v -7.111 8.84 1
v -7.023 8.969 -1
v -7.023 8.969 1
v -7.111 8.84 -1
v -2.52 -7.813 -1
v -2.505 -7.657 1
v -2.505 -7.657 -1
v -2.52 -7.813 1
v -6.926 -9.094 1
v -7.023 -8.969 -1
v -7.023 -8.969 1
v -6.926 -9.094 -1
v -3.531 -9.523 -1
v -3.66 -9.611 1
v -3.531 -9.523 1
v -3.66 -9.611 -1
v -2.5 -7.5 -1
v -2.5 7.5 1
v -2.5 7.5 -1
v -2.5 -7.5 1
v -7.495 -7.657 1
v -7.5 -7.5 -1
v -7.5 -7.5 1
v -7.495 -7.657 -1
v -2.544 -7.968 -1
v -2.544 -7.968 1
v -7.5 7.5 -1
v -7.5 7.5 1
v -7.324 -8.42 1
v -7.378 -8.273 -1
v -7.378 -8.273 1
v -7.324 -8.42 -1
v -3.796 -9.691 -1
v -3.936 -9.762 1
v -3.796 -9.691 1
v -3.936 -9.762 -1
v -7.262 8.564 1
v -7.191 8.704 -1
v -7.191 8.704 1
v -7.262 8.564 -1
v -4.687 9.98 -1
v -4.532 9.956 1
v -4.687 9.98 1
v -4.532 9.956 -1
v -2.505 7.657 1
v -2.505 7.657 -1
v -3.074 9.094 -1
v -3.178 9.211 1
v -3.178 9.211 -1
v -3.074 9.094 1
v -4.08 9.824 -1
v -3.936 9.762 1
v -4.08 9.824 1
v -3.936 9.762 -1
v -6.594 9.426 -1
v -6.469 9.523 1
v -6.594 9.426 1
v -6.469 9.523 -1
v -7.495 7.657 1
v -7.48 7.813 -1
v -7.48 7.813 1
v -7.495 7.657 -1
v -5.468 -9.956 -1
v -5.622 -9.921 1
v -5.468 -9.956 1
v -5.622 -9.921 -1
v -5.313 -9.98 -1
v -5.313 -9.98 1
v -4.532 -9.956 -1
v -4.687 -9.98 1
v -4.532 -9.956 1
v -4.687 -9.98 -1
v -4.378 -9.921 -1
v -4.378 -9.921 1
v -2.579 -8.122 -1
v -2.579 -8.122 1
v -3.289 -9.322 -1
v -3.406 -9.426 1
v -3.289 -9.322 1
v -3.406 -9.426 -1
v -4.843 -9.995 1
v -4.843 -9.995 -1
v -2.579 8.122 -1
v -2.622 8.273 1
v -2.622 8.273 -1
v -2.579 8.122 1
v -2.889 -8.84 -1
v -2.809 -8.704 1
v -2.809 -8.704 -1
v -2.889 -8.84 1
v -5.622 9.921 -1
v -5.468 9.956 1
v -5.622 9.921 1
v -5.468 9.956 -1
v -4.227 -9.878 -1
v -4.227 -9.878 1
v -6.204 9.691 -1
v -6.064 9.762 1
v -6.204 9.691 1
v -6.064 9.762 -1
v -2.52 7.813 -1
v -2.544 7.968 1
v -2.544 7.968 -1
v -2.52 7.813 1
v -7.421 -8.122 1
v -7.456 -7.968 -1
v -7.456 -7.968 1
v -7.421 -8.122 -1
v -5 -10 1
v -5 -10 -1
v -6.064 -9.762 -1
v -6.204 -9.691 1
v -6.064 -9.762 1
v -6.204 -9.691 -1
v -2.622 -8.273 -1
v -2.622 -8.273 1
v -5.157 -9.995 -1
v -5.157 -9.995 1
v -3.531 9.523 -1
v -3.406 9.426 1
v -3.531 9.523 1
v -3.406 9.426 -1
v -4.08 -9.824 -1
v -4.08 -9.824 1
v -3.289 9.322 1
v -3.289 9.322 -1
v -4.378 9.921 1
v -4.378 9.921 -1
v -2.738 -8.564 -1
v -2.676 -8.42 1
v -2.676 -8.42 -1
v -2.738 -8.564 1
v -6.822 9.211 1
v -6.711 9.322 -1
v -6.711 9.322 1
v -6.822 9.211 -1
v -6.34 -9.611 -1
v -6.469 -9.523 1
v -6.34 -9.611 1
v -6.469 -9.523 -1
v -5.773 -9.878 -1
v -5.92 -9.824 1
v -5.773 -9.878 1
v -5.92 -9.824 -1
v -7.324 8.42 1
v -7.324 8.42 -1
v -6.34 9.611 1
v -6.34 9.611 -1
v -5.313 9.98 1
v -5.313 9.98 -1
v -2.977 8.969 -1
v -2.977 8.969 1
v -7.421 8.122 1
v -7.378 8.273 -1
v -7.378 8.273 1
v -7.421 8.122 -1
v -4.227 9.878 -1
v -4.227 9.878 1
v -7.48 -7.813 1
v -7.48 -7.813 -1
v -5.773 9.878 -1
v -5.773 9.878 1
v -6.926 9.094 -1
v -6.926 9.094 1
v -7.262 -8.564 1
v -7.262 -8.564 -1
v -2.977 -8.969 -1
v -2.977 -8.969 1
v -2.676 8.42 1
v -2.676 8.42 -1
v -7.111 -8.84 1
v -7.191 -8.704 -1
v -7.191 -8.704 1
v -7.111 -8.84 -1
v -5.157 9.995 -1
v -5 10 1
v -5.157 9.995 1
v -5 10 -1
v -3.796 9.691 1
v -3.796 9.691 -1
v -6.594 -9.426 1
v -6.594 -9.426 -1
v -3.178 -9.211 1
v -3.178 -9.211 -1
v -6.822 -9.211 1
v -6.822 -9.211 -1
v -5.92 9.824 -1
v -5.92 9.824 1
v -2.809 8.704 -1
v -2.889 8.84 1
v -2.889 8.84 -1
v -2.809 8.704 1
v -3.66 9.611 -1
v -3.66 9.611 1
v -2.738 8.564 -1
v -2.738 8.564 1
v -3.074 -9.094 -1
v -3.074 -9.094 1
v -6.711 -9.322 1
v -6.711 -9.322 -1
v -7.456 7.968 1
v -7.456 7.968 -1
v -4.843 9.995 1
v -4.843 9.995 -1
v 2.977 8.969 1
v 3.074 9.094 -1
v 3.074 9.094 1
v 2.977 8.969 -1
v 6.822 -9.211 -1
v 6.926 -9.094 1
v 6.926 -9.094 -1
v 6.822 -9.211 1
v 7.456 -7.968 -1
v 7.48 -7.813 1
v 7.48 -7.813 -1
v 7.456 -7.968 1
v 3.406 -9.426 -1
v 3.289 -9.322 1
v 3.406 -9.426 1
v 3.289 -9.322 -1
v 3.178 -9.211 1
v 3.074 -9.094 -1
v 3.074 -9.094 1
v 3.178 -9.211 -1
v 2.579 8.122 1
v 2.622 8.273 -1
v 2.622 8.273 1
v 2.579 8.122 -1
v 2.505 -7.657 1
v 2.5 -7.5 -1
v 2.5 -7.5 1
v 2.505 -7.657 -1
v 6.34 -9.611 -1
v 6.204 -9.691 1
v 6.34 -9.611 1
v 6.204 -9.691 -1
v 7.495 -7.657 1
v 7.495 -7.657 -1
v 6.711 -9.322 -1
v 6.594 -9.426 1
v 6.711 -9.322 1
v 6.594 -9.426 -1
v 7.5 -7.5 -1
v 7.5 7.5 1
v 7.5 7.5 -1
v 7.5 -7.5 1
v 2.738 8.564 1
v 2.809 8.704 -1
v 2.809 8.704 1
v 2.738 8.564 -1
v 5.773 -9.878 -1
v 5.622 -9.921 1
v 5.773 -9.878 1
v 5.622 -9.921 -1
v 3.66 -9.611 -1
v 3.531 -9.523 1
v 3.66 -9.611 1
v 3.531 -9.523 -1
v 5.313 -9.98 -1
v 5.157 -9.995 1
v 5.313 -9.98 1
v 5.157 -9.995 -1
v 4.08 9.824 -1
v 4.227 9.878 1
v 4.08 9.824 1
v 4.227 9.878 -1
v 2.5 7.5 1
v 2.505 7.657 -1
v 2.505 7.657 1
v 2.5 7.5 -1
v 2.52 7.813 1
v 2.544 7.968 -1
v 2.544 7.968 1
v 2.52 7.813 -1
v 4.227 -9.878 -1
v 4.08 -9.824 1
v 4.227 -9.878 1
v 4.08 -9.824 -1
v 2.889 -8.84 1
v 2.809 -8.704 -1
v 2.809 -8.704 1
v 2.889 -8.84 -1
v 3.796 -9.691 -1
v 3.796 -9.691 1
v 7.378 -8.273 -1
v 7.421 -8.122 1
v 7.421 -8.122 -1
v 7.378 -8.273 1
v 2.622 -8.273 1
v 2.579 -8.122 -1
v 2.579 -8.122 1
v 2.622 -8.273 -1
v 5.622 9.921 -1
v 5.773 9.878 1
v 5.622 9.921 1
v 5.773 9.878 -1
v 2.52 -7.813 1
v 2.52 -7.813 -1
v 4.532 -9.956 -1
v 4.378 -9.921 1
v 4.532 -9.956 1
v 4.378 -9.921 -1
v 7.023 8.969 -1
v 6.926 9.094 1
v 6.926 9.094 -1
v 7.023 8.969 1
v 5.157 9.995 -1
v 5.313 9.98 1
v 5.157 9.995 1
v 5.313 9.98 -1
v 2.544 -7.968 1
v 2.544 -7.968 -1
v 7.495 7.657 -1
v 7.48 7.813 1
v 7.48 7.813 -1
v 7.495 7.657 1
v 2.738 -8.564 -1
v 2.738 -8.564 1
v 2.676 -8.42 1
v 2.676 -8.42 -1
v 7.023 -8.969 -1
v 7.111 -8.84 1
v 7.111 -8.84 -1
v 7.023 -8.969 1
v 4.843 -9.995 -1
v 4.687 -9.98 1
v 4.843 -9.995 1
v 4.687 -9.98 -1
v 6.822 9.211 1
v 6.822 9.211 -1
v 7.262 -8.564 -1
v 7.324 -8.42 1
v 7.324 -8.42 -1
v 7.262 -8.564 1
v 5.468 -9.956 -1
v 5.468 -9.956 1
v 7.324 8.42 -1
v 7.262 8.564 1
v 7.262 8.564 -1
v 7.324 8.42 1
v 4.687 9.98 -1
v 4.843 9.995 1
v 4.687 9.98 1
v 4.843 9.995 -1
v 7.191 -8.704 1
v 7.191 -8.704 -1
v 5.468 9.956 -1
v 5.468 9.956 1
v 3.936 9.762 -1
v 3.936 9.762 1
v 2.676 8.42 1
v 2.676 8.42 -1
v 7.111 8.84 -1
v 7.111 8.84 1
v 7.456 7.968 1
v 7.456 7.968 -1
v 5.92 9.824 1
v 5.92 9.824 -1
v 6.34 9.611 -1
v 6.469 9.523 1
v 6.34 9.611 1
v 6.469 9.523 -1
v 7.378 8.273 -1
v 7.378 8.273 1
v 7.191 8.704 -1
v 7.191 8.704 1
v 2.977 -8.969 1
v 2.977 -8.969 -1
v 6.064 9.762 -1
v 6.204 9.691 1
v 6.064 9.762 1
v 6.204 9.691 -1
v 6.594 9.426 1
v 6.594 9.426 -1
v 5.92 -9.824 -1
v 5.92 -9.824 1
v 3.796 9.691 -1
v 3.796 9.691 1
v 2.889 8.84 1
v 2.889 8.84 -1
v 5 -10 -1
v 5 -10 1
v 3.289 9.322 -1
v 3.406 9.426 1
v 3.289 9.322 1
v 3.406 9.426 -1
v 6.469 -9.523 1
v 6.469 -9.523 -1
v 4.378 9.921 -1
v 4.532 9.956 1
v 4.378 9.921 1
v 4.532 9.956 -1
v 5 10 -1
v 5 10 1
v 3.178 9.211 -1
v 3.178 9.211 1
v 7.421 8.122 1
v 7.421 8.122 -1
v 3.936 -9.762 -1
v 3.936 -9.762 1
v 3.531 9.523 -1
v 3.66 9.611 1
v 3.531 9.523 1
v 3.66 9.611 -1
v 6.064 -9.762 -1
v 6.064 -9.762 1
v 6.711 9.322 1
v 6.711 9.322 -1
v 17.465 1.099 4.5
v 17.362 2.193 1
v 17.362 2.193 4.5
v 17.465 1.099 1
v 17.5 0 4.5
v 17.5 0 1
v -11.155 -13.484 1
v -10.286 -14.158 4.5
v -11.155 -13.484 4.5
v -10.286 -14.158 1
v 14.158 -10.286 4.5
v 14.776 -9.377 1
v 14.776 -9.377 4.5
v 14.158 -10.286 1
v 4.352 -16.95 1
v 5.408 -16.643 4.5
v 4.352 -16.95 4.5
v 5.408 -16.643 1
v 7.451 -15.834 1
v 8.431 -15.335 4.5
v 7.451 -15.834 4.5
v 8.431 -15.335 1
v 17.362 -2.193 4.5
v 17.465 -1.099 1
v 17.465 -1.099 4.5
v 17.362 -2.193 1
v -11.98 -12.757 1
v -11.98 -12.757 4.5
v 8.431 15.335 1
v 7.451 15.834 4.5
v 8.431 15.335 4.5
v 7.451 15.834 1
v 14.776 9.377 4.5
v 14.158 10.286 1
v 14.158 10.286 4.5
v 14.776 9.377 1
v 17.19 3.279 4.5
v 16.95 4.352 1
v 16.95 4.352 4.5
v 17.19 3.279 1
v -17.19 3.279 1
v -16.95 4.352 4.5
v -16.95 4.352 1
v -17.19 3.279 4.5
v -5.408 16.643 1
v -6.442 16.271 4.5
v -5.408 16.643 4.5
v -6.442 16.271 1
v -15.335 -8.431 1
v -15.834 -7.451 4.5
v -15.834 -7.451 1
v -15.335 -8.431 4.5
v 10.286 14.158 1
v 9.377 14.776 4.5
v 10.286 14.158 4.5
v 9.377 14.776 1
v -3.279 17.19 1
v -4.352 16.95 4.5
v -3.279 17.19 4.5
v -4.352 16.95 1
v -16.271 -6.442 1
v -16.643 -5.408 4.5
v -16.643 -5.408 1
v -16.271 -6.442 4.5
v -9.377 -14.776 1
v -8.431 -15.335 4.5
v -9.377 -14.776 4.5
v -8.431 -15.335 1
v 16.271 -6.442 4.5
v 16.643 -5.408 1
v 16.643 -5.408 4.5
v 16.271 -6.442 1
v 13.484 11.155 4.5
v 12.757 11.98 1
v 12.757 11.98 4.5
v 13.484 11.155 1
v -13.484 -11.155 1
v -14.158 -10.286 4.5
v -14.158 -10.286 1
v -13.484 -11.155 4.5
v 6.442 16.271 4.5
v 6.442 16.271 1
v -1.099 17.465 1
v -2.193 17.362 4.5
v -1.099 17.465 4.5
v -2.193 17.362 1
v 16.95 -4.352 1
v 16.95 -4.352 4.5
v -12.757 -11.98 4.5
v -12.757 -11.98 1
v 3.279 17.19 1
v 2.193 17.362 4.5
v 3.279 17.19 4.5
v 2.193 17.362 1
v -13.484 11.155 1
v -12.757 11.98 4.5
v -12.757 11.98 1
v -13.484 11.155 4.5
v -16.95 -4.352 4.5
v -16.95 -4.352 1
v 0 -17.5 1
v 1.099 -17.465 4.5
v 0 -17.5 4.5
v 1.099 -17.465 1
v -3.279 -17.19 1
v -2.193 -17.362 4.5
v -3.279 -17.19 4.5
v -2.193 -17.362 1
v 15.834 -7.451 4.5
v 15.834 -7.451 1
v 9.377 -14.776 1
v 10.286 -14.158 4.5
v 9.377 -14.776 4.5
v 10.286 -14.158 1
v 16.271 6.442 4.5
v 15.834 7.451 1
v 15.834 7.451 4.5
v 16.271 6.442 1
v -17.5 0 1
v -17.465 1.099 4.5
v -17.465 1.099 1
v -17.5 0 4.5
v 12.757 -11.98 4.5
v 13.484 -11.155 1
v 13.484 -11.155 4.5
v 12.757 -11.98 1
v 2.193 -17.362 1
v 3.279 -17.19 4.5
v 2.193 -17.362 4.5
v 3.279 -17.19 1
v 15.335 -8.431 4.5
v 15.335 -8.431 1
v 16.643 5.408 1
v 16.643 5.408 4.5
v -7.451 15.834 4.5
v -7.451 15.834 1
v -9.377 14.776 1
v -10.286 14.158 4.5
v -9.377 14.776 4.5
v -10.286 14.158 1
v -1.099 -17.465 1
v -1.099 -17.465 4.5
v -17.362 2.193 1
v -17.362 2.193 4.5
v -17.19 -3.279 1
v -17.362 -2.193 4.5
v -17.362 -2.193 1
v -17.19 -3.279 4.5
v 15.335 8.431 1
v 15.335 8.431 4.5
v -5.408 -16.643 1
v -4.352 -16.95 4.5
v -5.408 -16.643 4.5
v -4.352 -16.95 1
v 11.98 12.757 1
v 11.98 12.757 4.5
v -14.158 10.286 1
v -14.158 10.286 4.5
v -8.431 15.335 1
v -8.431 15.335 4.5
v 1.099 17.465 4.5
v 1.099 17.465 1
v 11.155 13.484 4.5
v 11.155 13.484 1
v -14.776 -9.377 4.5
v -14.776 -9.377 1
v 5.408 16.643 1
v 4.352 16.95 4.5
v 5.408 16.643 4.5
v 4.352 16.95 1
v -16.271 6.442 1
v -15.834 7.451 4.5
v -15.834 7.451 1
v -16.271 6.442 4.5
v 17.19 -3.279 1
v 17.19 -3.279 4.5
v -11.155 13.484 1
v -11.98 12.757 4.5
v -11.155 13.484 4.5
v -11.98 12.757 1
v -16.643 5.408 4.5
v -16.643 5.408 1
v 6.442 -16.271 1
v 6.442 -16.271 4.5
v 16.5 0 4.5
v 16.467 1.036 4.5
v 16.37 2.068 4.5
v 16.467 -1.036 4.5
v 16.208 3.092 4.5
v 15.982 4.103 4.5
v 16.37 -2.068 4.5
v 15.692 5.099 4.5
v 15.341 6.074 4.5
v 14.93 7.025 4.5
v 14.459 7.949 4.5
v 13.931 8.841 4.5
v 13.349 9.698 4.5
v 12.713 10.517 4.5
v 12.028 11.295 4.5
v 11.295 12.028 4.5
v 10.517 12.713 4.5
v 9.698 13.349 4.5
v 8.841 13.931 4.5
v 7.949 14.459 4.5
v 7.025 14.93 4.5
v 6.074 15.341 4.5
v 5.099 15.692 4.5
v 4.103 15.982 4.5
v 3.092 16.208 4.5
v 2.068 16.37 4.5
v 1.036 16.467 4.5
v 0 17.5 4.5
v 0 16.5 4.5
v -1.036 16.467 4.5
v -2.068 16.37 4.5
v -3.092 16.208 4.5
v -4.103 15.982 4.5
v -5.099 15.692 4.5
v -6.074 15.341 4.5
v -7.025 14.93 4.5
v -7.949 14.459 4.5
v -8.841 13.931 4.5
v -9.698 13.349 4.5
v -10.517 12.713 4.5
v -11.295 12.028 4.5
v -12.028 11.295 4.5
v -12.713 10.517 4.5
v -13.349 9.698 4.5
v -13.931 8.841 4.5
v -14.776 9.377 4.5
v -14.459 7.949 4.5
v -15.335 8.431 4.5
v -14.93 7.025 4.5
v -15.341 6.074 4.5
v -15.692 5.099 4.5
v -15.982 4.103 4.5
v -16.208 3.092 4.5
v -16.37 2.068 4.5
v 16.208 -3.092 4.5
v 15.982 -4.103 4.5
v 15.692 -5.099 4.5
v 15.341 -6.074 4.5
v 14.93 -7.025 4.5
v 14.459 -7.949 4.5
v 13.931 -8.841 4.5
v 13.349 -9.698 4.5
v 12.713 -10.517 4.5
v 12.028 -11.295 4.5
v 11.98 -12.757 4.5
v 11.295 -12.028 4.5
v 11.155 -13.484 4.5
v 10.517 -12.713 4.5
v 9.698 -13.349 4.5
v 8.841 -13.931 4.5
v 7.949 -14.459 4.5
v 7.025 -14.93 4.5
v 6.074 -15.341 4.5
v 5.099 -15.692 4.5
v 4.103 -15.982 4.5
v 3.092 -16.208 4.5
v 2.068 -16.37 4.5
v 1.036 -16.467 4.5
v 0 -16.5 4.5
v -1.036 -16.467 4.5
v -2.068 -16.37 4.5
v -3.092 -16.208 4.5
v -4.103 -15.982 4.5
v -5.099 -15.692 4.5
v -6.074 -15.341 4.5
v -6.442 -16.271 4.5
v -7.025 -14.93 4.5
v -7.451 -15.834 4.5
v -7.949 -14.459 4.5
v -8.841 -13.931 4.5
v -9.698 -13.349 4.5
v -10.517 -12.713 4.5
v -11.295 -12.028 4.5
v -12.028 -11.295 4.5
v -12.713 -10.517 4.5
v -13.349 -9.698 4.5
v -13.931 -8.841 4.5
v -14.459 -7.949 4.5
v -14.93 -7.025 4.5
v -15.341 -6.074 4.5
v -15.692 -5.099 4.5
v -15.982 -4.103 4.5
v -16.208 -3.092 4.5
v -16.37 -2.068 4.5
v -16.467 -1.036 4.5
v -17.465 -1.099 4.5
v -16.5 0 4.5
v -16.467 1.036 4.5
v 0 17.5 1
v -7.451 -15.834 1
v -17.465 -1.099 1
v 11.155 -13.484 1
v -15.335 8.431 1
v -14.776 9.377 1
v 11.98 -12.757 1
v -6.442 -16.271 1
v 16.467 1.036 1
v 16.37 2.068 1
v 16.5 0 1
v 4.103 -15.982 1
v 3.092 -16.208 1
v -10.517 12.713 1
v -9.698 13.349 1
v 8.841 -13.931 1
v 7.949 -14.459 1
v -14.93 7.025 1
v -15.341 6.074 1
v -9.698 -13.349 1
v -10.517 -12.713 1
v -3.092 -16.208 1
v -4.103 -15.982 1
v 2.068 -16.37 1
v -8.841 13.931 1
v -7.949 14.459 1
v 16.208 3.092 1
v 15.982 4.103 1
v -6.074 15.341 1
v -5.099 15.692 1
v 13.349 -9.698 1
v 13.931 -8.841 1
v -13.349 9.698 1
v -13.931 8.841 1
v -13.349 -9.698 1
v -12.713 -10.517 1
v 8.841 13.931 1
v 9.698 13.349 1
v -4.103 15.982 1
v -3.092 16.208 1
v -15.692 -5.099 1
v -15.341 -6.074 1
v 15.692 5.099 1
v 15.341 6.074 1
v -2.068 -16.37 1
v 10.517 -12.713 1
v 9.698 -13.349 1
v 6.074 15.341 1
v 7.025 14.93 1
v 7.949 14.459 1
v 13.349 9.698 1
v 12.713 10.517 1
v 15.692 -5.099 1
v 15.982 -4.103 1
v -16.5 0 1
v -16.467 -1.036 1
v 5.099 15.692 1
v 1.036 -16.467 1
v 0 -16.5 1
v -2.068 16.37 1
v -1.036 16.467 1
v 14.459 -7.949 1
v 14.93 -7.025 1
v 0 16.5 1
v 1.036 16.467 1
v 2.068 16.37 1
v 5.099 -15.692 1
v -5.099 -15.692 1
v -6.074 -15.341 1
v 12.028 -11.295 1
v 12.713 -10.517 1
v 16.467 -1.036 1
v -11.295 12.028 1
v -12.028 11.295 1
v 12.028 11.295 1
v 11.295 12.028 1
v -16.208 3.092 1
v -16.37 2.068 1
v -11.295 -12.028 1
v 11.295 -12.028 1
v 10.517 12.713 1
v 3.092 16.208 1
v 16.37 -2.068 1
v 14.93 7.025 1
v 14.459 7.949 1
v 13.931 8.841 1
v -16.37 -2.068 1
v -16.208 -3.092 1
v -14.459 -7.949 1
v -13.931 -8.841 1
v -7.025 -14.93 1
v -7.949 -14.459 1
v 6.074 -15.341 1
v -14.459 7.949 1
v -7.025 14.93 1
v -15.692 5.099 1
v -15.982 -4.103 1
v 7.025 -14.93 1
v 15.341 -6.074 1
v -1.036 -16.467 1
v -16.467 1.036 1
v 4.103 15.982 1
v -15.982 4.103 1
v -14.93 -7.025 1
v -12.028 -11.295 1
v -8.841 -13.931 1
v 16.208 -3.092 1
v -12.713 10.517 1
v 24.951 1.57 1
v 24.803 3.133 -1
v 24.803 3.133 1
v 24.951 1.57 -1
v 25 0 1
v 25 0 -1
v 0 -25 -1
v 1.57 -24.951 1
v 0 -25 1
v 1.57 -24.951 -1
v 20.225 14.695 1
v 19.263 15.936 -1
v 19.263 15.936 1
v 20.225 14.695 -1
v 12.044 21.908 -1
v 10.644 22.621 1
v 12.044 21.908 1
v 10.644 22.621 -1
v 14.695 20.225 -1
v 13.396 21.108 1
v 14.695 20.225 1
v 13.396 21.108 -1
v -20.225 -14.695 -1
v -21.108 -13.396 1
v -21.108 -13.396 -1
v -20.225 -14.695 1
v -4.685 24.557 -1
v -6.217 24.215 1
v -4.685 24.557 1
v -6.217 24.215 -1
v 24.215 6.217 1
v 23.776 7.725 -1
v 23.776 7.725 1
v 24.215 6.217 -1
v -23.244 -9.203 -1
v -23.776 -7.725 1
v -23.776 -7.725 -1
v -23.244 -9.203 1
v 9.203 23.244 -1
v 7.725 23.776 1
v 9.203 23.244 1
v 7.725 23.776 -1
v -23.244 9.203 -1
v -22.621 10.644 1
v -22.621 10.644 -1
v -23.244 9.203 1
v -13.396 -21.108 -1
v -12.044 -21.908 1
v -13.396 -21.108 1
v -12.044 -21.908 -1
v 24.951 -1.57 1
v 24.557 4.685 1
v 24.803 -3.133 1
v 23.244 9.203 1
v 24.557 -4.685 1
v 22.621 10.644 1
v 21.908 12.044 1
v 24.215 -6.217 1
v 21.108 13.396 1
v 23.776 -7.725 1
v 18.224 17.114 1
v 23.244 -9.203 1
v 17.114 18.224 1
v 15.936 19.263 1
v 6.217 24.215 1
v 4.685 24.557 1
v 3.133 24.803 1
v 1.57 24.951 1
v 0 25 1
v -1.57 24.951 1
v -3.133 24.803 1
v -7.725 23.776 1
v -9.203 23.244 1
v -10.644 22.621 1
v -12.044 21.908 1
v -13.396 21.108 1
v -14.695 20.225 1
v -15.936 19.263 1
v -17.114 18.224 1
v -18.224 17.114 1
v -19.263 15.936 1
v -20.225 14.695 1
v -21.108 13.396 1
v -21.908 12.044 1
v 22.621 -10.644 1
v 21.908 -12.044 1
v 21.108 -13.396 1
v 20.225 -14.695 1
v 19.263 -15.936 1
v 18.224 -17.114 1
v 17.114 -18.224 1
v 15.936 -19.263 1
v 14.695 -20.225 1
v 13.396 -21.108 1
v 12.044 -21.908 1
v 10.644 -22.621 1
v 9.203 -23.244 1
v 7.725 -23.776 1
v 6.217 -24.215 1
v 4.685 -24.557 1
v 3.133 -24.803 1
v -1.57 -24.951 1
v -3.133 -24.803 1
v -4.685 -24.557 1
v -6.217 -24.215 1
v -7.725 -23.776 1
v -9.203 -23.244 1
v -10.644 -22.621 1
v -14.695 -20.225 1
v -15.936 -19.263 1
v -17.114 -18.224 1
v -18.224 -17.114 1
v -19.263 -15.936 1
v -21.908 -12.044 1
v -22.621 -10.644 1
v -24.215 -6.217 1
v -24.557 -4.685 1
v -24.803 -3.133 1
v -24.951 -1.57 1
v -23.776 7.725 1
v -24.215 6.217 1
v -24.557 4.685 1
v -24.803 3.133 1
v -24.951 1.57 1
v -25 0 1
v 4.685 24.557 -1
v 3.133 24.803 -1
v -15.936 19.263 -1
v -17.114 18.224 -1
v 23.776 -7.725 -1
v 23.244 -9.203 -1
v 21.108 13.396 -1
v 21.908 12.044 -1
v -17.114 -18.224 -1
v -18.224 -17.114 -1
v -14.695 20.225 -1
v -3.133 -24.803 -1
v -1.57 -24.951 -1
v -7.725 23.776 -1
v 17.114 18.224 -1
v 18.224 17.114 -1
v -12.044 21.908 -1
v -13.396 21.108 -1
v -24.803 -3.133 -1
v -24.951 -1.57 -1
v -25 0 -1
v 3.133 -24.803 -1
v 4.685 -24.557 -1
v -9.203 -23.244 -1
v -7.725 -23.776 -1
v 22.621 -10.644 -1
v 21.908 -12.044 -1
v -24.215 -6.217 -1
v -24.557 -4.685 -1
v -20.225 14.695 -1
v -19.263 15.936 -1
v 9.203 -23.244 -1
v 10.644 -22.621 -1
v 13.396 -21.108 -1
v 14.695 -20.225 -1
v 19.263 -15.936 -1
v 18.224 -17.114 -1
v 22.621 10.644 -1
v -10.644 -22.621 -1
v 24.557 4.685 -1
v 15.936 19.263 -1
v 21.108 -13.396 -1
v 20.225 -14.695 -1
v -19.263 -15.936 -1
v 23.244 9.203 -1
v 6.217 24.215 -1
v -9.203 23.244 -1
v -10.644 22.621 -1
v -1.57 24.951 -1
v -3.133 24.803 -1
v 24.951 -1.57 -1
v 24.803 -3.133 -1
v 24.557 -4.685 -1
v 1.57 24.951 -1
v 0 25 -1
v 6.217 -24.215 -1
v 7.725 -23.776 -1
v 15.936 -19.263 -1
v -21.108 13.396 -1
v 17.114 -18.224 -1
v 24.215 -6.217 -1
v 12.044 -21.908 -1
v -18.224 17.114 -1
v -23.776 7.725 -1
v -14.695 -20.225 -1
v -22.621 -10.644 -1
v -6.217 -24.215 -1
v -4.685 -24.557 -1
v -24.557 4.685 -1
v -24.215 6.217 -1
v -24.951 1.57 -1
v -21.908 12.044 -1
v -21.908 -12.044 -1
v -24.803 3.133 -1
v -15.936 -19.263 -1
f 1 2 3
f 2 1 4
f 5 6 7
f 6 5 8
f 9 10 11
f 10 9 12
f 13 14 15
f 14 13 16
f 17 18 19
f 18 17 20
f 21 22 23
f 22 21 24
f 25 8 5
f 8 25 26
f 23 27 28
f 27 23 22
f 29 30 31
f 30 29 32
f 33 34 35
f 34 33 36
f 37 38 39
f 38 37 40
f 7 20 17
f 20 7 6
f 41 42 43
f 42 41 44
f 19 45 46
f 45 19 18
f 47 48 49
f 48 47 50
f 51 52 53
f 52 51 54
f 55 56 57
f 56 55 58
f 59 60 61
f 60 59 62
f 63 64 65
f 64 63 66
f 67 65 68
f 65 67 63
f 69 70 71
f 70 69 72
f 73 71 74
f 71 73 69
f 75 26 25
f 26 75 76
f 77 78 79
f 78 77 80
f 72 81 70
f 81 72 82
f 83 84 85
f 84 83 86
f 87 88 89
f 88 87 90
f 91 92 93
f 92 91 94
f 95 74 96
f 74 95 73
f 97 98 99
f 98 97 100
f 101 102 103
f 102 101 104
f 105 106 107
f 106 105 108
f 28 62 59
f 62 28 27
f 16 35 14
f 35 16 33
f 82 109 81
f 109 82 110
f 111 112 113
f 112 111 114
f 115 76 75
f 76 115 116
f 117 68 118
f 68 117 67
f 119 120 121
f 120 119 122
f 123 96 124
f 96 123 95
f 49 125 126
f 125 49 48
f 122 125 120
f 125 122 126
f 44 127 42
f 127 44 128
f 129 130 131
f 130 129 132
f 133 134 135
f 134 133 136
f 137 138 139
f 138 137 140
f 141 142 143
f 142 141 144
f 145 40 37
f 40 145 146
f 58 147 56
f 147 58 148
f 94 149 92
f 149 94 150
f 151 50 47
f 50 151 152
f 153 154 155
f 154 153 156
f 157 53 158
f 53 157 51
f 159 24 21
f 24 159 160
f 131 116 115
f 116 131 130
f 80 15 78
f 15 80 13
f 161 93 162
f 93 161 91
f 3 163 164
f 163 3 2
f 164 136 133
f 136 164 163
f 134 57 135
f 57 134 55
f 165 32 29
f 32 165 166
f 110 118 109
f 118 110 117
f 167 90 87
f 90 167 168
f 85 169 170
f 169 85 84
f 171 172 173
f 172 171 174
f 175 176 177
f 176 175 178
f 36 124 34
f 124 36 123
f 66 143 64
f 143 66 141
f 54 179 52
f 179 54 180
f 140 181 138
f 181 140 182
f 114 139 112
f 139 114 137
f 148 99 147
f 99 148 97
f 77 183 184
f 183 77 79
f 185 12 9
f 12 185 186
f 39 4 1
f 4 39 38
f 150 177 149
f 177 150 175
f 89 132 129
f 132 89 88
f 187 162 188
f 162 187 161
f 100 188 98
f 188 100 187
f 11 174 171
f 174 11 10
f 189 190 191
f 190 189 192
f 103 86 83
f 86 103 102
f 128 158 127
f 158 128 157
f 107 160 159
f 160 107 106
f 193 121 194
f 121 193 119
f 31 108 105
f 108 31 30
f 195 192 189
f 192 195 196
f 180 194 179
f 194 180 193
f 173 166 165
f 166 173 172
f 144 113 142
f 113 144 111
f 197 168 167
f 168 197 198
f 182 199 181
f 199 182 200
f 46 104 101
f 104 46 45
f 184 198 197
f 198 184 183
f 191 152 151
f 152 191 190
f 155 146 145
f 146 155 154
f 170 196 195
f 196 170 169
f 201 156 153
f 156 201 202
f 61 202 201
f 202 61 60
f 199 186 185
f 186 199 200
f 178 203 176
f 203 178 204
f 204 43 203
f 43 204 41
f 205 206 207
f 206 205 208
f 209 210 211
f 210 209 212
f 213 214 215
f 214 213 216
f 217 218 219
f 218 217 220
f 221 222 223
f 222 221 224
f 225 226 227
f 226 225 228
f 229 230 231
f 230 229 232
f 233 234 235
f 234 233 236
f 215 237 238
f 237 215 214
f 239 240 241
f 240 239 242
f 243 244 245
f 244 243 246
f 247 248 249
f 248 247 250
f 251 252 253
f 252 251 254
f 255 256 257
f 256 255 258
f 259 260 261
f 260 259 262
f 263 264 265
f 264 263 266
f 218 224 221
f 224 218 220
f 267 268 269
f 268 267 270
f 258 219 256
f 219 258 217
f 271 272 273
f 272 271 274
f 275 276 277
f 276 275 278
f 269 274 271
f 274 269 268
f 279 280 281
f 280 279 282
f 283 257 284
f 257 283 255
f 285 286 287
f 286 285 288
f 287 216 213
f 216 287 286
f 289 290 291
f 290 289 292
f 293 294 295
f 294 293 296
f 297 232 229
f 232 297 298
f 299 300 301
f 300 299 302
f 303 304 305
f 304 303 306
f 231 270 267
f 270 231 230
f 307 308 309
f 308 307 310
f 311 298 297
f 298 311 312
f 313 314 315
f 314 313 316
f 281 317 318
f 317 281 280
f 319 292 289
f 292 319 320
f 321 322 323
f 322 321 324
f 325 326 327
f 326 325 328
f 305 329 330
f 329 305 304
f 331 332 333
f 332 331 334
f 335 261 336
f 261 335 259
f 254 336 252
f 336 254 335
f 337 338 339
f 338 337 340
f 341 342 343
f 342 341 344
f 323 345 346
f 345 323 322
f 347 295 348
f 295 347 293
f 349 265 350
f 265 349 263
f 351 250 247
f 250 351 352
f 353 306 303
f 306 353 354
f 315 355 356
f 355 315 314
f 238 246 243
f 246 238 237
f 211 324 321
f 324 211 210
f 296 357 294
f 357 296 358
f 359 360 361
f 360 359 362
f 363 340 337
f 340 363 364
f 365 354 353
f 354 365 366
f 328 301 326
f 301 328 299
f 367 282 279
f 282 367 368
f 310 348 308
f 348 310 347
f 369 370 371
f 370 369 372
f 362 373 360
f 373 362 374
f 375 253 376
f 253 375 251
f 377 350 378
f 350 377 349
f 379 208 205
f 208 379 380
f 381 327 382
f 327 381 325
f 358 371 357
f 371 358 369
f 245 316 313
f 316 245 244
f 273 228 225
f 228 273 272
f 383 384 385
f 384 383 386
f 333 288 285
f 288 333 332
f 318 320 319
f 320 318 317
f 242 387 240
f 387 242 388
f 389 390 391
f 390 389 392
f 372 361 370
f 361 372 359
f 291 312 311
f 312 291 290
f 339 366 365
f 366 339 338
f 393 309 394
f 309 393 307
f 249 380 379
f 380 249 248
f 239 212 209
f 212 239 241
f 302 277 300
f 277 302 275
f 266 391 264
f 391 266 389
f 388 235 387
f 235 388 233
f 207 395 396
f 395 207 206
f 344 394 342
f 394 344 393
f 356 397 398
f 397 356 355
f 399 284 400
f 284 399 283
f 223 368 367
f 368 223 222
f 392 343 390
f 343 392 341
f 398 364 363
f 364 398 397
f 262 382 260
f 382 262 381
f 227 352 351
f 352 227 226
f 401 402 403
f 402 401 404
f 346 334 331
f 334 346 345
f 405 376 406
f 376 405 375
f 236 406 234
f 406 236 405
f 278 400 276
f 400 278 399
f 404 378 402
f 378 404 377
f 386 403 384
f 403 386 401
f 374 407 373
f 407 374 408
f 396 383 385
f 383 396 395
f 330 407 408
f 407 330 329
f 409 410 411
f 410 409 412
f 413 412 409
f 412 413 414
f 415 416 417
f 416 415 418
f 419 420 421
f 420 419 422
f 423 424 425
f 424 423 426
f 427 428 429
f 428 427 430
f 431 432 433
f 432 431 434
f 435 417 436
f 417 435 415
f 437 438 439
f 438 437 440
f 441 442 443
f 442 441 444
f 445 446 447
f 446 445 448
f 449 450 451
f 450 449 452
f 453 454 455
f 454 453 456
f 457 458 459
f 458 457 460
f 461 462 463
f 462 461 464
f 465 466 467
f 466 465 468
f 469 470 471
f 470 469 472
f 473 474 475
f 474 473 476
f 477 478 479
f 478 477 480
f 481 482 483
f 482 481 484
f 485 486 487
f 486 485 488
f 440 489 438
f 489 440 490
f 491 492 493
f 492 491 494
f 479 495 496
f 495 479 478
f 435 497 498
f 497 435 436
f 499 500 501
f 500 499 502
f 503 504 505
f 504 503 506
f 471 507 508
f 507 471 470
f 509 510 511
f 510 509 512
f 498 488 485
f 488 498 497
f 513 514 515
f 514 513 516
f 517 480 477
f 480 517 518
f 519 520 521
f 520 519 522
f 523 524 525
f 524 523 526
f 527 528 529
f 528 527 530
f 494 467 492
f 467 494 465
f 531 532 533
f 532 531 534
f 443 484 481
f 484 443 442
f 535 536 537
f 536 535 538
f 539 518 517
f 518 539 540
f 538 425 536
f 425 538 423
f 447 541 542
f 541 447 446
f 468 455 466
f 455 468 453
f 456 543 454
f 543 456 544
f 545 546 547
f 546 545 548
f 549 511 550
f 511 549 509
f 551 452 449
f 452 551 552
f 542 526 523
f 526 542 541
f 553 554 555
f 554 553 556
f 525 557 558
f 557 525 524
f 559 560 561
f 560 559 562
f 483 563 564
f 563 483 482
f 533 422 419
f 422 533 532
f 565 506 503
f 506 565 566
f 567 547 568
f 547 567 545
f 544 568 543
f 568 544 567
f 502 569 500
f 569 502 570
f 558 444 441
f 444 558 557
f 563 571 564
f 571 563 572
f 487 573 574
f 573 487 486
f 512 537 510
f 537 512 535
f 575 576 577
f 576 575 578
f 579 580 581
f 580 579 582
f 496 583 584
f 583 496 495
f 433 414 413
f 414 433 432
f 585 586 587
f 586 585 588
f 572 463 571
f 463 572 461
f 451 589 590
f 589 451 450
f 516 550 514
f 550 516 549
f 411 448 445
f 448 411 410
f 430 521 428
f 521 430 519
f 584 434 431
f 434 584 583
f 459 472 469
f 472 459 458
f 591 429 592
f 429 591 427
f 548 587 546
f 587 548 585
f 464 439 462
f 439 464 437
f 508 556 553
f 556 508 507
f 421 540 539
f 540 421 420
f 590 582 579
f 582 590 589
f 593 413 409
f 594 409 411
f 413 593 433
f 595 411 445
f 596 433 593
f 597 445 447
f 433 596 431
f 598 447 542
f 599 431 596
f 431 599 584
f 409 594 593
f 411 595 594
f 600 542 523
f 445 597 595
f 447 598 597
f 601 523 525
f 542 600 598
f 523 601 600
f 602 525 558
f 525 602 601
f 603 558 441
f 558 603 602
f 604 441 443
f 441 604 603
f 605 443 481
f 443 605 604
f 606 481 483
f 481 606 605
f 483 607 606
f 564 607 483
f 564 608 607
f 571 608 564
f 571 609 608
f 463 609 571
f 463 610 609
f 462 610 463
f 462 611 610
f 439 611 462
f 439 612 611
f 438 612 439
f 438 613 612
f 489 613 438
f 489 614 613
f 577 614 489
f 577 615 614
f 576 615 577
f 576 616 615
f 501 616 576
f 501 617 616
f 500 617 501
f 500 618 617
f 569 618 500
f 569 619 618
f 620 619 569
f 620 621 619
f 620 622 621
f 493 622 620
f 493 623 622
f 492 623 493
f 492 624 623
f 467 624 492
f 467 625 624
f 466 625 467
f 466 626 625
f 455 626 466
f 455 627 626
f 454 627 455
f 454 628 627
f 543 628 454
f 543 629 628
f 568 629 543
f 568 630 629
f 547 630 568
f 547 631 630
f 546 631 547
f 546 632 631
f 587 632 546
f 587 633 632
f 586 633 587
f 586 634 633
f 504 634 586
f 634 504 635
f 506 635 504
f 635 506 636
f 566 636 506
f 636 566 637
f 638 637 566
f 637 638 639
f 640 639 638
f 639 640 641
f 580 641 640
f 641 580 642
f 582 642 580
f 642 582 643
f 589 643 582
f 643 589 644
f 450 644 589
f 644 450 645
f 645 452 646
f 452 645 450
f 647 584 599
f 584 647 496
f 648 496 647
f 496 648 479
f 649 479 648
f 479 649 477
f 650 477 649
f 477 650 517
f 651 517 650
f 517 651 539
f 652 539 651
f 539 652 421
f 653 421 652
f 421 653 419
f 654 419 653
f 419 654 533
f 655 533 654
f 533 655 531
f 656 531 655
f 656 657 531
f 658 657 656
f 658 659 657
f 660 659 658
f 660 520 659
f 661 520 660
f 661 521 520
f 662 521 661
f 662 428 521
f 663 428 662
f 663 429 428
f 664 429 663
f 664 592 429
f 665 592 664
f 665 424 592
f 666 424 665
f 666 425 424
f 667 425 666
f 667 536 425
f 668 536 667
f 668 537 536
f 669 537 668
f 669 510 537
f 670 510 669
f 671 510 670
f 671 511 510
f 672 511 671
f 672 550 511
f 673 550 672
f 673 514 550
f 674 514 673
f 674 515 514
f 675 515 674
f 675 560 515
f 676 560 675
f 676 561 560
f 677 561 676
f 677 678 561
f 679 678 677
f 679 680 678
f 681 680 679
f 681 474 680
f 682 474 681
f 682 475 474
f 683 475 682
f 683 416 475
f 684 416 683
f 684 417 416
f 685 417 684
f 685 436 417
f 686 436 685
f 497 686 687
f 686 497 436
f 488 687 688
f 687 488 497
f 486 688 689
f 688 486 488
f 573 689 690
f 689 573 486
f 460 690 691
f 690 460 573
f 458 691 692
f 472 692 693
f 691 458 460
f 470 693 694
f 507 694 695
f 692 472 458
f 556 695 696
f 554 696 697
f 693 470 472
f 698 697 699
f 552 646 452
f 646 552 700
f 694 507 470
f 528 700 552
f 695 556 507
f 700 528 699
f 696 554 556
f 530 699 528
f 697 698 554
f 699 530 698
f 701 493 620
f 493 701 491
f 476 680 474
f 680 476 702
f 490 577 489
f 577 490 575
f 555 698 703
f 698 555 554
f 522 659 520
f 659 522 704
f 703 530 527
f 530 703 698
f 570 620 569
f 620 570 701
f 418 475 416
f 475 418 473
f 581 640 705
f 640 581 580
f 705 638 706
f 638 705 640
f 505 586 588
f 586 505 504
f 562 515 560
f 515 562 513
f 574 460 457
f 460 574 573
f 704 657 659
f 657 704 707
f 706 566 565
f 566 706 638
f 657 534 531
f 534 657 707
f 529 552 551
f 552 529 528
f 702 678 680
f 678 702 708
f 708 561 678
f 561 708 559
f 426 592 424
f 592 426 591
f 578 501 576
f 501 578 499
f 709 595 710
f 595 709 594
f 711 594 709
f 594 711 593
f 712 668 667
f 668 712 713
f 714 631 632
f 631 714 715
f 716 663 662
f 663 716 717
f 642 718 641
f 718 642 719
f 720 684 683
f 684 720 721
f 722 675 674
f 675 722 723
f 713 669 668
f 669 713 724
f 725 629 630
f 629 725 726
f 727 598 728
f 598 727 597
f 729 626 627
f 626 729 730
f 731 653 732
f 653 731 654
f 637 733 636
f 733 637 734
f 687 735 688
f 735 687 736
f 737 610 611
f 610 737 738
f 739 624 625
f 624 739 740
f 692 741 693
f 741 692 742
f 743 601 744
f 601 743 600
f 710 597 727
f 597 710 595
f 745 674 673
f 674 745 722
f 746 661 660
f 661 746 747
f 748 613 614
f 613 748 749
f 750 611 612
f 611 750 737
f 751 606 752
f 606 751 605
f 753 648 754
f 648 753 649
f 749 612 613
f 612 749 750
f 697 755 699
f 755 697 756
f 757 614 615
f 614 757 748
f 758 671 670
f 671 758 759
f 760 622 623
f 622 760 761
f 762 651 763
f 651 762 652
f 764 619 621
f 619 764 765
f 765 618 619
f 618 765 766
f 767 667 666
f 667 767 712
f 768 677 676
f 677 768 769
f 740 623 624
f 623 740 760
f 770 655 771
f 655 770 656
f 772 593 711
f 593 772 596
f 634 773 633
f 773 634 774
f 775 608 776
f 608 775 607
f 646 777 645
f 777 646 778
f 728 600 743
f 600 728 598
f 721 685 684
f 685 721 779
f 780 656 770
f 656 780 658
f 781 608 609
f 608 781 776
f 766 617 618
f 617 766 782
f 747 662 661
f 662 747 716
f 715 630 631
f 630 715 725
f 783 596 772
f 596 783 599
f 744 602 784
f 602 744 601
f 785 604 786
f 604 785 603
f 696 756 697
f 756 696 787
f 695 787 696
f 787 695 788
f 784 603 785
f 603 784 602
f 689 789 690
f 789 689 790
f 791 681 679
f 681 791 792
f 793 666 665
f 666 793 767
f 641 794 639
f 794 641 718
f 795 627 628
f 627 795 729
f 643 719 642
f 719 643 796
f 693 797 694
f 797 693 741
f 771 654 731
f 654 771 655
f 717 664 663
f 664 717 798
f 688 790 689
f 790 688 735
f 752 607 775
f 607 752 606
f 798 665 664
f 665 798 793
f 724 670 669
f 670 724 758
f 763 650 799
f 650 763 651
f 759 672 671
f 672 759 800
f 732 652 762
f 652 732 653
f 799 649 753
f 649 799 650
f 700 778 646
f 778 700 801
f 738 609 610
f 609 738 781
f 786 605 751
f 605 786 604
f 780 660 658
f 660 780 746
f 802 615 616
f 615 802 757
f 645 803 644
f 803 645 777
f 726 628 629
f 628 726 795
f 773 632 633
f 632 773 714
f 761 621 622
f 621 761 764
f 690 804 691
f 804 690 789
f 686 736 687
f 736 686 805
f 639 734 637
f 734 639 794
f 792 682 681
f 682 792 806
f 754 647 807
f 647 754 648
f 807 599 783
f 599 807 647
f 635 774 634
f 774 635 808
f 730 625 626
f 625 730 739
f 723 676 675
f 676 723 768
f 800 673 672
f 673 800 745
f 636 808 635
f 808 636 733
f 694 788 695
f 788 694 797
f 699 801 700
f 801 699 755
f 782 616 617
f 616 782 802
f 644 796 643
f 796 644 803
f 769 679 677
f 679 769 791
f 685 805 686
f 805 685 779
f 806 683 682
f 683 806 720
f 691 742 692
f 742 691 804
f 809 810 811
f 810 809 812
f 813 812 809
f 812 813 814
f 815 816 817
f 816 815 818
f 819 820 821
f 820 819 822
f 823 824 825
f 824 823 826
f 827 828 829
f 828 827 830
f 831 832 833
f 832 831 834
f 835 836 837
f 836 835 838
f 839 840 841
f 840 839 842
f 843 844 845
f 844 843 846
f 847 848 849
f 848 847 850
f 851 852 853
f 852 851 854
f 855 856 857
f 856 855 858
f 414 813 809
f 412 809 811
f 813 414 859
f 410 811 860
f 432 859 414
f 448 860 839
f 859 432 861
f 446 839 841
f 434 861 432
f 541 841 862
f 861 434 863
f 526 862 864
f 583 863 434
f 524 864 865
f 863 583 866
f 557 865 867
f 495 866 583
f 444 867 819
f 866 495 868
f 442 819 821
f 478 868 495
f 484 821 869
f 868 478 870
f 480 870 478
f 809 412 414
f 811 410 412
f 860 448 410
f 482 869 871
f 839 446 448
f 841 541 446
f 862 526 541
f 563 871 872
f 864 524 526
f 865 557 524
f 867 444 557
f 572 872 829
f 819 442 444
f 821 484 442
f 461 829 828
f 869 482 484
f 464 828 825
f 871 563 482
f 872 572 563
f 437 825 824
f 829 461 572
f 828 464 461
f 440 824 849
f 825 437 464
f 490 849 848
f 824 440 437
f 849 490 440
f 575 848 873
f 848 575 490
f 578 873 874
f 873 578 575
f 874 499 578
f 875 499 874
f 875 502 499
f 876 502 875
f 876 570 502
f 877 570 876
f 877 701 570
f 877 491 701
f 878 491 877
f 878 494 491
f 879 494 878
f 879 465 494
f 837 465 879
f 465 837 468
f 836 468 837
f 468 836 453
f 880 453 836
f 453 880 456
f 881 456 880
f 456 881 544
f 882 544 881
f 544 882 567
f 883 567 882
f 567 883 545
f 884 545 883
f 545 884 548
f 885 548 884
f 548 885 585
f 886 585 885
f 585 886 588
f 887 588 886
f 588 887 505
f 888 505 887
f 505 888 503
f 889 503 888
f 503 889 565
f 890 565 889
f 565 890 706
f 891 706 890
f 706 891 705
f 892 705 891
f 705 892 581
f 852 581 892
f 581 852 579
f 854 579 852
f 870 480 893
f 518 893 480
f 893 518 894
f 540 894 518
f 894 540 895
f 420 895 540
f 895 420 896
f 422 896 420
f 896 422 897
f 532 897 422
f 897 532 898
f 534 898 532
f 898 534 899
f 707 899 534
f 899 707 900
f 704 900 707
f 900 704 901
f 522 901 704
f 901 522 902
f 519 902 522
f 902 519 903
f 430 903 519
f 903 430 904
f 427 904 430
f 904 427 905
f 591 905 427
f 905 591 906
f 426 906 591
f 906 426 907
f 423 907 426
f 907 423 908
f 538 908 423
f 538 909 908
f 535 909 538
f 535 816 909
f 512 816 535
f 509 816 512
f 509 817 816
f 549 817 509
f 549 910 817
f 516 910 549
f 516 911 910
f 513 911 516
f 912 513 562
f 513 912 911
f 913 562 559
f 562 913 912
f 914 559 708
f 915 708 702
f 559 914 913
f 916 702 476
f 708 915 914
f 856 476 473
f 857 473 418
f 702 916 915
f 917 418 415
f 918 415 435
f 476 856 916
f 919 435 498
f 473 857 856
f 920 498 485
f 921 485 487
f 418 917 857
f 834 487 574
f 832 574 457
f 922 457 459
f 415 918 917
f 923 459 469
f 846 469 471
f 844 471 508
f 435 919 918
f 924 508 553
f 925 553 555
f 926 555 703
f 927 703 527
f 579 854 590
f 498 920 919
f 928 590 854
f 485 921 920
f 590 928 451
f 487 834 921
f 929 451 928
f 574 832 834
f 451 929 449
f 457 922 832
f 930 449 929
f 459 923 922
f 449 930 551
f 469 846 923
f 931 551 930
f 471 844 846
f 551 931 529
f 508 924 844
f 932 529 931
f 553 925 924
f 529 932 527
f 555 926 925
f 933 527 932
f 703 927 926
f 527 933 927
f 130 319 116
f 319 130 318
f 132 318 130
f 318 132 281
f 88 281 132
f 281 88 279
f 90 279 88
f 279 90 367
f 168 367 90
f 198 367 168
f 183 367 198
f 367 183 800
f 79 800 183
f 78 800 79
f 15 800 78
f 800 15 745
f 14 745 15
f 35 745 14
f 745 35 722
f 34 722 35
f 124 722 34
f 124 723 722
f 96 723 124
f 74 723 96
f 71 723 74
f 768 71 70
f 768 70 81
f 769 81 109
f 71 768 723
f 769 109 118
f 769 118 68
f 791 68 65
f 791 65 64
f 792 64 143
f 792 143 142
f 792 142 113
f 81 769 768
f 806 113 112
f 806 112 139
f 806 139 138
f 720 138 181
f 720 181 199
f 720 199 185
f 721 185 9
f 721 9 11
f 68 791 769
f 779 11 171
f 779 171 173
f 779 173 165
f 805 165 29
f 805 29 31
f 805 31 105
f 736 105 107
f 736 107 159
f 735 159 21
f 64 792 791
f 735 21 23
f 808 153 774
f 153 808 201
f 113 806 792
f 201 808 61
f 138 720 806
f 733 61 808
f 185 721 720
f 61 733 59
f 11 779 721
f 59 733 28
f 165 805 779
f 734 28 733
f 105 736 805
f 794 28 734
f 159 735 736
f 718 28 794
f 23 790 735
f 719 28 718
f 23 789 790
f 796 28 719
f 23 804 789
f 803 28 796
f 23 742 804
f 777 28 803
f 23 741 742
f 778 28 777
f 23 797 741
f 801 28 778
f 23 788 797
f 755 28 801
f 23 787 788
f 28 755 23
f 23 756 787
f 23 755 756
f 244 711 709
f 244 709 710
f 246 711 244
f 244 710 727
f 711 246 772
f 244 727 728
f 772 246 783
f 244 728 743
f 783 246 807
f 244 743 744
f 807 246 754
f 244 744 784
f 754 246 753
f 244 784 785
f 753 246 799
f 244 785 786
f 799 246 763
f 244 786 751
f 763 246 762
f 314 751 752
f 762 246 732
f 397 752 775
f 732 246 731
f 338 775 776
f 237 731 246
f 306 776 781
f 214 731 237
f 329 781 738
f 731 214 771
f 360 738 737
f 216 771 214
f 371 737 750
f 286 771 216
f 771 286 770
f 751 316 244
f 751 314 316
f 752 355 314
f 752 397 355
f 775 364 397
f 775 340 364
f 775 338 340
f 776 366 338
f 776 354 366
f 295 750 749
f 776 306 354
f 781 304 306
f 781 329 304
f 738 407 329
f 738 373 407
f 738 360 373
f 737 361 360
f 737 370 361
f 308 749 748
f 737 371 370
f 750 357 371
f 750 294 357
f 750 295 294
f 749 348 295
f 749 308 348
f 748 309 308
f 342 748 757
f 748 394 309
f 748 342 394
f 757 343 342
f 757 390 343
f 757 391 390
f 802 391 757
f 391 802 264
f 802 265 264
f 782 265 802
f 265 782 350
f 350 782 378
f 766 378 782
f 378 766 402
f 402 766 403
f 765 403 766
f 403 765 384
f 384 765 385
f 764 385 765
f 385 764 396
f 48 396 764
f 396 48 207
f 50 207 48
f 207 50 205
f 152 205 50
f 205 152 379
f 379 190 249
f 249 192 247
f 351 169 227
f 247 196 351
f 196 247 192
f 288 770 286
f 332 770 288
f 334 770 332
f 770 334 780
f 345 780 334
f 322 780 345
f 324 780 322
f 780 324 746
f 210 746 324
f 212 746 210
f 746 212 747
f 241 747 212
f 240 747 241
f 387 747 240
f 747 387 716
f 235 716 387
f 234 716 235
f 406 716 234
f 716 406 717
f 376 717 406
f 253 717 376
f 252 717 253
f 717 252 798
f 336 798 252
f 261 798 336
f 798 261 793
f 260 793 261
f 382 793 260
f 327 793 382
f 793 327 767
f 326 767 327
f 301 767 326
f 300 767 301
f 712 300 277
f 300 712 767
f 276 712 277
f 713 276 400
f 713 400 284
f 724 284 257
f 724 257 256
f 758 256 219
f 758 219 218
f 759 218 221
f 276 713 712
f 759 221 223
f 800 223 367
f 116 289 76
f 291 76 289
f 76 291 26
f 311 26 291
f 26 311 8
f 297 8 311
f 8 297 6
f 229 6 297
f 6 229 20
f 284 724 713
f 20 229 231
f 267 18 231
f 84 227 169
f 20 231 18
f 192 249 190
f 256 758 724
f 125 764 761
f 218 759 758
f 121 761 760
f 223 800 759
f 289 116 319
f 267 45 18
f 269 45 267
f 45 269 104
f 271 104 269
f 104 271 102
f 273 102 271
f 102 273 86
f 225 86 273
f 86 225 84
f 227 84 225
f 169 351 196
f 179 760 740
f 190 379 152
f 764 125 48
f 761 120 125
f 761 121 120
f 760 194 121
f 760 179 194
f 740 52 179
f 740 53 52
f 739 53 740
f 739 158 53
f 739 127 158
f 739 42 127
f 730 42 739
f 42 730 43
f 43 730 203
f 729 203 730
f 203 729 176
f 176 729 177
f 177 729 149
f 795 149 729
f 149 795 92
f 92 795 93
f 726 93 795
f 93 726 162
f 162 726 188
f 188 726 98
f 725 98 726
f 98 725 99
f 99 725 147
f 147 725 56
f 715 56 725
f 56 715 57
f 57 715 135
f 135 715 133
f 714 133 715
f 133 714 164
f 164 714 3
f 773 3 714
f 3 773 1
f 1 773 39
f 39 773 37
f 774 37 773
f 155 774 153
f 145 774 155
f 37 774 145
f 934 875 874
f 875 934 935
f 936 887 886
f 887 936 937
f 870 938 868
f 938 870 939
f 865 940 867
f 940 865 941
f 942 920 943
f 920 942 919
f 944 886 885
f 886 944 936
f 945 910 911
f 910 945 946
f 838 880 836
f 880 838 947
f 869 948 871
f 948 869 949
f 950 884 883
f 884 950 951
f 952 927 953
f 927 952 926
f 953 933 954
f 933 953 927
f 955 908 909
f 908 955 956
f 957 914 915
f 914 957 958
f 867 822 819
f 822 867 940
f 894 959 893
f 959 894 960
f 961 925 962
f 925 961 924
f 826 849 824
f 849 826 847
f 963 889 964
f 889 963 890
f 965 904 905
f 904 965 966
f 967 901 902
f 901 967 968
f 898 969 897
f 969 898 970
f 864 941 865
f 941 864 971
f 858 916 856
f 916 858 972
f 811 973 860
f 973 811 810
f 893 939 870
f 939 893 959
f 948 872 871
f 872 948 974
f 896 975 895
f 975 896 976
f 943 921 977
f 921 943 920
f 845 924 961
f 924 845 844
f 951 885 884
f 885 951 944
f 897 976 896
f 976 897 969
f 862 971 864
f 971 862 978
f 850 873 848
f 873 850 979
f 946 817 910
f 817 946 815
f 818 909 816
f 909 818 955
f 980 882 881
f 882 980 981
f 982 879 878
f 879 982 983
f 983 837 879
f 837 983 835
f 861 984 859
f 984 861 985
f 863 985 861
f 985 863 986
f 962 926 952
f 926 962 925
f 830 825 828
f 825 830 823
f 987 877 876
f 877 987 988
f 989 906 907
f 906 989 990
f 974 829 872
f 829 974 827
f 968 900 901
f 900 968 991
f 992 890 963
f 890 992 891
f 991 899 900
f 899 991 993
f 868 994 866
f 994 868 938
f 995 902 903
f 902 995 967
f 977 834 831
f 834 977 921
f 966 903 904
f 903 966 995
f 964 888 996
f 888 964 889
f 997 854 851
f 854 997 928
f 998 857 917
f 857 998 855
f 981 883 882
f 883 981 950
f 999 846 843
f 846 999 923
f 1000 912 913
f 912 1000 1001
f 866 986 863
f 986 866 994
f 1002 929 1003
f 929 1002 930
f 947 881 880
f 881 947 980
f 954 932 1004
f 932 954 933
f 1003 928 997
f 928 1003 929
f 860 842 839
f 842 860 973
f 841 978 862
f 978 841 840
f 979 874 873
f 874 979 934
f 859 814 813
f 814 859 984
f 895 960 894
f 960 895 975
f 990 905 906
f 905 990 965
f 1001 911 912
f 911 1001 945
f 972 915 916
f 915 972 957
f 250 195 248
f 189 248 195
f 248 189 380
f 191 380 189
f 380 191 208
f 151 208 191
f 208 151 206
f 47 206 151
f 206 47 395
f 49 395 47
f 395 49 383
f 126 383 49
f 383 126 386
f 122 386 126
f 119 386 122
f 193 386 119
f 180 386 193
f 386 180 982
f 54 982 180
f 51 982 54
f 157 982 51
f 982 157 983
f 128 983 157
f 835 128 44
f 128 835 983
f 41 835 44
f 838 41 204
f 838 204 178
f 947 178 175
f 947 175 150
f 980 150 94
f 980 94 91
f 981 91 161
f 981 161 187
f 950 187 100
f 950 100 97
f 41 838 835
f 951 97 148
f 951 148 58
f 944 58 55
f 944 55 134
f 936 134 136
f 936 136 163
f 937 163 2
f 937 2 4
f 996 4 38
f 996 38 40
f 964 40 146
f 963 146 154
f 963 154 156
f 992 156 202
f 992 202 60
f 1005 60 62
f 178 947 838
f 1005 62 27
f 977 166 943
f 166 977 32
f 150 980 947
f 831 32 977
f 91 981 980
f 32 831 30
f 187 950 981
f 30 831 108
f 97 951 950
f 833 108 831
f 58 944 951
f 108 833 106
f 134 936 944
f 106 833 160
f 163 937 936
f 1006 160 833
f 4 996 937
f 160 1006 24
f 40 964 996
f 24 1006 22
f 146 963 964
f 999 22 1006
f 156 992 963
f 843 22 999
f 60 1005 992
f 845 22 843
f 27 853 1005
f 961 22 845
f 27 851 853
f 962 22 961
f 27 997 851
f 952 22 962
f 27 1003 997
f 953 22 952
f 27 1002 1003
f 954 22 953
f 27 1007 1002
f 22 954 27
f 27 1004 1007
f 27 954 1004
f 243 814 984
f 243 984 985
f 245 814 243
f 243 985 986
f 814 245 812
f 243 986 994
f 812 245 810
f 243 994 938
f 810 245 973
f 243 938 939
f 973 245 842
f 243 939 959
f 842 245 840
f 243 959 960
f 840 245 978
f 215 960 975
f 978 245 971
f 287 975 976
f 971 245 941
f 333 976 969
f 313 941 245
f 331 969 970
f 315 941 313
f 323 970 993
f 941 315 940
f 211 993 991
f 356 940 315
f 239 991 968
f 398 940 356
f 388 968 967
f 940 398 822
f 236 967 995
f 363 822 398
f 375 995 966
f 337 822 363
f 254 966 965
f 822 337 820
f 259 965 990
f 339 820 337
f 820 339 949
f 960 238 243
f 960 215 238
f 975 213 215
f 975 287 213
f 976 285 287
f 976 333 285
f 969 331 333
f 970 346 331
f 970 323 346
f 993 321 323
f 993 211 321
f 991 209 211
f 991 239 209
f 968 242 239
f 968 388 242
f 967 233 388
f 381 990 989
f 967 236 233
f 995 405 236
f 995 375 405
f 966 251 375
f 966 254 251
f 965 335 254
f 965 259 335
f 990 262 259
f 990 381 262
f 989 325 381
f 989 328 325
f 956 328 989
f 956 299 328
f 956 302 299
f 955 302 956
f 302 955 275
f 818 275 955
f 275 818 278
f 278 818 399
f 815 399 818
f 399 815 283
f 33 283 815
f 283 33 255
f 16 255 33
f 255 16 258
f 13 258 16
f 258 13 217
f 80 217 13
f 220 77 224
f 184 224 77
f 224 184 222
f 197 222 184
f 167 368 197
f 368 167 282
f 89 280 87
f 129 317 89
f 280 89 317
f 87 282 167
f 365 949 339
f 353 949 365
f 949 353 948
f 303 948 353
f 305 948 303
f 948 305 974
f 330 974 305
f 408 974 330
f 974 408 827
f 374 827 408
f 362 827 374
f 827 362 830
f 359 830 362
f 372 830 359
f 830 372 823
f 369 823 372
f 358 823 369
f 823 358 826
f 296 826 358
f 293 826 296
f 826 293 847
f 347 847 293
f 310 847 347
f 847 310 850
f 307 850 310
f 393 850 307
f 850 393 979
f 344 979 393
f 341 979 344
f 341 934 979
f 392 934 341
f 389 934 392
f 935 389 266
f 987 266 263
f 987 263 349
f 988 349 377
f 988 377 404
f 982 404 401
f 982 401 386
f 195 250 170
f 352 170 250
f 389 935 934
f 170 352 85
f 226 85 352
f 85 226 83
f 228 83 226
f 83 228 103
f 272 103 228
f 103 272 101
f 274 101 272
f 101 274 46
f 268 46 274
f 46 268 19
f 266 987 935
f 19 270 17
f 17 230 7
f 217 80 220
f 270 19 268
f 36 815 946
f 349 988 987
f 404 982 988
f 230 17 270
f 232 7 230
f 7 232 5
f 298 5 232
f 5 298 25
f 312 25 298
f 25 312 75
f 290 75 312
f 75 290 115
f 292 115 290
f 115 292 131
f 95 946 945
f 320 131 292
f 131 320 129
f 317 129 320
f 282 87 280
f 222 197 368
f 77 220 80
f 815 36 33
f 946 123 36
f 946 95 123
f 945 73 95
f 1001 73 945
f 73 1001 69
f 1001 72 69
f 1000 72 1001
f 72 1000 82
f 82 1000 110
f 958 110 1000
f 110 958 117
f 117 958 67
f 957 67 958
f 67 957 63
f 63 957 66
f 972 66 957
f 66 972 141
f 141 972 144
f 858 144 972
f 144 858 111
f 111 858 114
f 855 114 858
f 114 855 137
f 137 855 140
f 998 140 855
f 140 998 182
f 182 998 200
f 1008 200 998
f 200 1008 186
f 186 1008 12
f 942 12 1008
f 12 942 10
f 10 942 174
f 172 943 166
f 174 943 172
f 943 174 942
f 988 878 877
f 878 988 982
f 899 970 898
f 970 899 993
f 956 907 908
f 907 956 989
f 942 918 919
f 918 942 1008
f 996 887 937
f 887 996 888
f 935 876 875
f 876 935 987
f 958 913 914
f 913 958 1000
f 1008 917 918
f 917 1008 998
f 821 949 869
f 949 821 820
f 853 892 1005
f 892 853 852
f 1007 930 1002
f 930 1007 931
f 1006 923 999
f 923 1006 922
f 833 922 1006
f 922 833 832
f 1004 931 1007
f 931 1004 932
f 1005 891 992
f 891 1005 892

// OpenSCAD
$fn=100;
rim=8.5;
thickness=2;
internaldiameter=33;
lip=5;
lipthickness=2;

module keyhandle() {
    cylinder(h=thickness, d=internaldiameter+(rim*2), center=true);
}

module lip() {
    difference() {
        translate([0,0,thickness]) color ([1,0,0]) cylinder(h=lip, d=internaldiameter+thickness, center=true);
        translate([0,0,thickness]) color ([0,1,0]) cylinder(h=lip*2, d=internaldiameter, center=true);
    }
}

module handle() {
    color ([0,0,1]) hull() {
        translate([-5,7.5,-thickness]) cylinder(h=thickness*2, d=lip);
        translate([-5,-7.5,-thickness]) cylinder(h=thickness*2, d=lip);
    }
    color ([0,0,1]) hull() {
        translate([5,7.5,-thickness]) cylinder(h=thickness*2, d=lip);
        translate([5,-7.5,-thickness]) cylinder(h=thickness*2, d=lip);
    }
}

difference() {
    union() {
        keyhandle();
        lip();
    }
    handle();
}
